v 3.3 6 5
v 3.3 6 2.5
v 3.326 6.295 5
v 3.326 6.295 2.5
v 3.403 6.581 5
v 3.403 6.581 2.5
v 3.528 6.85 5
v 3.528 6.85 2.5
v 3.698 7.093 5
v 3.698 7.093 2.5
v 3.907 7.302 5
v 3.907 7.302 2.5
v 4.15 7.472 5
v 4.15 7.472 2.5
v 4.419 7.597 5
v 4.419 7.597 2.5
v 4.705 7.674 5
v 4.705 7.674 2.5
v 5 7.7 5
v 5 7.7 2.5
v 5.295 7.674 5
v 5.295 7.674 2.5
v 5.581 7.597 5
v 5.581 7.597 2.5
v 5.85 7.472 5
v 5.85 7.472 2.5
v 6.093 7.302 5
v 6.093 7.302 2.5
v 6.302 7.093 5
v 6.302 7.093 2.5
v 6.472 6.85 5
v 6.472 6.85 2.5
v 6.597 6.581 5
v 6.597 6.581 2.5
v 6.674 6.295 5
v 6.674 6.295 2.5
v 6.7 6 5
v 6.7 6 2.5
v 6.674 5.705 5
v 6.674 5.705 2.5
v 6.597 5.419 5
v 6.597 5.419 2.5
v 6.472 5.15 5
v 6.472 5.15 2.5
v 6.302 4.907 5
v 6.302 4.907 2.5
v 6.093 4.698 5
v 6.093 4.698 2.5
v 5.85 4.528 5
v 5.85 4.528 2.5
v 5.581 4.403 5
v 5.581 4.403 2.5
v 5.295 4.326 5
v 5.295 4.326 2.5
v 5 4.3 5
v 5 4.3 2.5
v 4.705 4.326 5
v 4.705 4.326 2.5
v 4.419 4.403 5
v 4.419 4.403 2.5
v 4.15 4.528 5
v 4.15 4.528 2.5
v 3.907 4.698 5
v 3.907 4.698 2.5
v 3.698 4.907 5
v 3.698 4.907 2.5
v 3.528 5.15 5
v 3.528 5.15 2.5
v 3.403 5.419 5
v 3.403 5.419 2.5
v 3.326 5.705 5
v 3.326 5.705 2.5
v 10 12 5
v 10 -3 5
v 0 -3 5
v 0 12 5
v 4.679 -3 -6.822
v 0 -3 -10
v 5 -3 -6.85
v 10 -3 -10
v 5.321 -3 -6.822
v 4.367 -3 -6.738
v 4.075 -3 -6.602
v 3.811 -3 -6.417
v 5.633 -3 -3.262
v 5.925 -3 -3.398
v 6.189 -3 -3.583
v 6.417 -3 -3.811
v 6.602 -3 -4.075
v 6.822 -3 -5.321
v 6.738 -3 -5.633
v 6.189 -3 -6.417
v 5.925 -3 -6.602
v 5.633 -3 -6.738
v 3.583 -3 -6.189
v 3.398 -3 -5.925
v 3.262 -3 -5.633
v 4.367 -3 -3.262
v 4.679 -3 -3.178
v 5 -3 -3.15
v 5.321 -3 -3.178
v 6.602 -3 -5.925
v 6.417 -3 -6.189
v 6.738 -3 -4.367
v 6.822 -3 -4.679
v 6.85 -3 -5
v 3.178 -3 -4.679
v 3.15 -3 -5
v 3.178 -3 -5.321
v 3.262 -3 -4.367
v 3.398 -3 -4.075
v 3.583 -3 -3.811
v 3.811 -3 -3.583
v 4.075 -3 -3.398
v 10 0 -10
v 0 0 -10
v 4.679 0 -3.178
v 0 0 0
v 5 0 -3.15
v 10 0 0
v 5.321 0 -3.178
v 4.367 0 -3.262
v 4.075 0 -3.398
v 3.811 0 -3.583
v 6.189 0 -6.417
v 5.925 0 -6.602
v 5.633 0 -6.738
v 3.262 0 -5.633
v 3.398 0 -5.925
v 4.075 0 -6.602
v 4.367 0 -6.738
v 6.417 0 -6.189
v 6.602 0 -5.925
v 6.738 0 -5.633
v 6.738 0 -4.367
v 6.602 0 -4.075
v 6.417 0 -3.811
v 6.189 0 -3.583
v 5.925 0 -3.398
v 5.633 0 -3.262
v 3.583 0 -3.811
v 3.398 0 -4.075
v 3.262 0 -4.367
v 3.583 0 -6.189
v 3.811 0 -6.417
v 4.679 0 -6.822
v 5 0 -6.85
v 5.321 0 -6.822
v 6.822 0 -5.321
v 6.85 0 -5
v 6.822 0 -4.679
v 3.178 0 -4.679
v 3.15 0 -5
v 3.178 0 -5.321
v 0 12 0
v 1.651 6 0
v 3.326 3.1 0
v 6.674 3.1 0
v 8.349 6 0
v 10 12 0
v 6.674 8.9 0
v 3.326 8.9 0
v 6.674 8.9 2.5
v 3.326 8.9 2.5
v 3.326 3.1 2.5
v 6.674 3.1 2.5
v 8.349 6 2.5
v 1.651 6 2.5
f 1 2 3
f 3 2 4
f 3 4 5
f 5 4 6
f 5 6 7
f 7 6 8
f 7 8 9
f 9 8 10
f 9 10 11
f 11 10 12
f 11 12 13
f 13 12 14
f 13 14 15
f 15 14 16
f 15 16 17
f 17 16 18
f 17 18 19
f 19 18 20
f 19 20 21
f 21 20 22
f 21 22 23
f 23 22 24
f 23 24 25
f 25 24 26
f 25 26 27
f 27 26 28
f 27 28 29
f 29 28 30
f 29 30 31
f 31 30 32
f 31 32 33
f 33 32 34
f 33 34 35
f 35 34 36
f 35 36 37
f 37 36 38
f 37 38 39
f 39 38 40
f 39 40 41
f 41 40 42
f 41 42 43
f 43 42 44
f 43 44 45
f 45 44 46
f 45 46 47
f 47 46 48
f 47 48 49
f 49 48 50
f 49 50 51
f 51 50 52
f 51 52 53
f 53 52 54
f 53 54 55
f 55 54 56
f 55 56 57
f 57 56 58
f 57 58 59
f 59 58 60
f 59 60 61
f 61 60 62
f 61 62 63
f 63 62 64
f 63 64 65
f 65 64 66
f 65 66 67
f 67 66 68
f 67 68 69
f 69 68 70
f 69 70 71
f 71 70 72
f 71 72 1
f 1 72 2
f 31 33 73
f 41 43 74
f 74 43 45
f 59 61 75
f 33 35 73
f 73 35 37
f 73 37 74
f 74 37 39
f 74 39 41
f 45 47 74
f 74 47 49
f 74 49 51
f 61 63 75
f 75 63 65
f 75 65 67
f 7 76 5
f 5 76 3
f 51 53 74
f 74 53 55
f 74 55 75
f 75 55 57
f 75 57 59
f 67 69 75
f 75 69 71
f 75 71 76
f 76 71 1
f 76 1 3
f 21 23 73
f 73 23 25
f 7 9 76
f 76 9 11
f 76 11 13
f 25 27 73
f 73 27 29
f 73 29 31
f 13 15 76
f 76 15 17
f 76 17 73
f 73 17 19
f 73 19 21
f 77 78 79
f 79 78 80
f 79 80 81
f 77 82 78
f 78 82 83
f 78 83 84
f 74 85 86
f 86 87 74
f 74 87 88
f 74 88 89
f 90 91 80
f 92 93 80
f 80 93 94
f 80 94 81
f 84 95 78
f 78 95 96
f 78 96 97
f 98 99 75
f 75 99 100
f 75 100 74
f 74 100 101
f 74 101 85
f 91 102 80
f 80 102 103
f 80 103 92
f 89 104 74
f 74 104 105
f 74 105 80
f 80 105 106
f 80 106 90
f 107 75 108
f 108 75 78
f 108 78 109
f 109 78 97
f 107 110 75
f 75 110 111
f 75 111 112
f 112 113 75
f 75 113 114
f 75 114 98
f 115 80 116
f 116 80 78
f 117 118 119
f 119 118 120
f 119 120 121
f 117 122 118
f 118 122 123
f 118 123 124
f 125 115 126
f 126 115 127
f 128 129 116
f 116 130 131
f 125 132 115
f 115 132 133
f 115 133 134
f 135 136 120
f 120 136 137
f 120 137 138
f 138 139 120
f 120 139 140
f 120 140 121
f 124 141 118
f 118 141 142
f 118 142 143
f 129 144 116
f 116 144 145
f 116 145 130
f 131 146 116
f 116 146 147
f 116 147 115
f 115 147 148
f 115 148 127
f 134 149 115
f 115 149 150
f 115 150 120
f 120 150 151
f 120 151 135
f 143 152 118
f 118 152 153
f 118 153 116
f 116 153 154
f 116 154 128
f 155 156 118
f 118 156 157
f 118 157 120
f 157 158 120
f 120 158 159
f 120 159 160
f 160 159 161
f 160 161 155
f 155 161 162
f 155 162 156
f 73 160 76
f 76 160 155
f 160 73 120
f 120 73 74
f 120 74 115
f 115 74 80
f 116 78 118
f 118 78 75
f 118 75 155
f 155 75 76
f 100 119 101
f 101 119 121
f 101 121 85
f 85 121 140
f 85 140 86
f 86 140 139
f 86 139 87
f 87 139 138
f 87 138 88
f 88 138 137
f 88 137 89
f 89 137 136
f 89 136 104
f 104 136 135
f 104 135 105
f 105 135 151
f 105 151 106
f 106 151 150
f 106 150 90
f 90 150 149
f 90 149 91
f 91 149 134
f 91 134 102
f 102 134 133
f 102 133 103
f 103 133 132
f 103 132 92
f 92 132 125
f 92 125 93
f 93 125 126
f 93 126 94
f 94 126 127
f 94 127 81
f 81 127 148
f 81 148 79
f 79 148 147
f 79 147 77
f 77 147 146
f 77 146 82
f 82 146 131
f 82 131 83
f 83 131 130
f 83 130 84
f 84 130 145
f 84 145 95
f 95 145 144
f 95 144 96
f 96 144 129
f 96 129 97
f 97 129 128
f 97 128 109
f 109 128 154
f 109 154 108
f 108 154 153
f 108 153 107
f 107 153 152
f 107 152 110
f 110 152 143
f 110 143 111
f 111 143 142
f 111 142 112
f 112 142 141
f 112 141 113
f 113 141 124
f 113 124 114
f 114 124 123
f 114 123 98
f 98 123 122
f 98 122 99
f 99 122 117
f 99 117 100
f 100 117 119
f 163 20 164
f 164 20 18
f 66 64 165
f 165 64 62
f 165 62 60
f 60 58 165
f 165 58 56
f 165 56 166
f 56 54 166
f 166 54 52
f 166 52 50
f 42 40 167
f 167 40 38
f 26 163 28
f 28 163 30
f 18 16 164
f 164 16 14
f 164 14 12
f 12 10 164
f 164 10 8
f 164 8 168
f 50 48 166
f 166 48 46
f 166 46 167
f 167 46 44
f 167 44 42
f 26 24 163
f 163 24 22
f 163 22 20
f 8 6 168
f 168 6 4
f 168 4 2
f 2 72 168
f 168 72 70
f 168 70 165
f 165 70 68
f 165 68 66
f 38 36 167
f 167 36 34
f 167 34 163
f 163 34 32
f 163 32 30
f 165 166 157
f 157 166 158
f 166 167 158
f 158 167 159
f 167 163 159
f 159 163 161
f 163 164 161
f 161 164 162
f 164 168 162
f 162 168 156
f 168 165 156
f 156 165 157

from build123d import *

# Parameters (mm, degrees)
BOSS_EXTRUDE1_DEPTH = 10
SKETCH2_R           = 1.85
CUT_EXTRUDE1_DEPTH  = 19.547236991
SKETCH4_R           = 1.7
CUT_EXTRUDE2_DEPTH  = 19.547236991
CUT_EXTRUDE3_DEPTH  = 2.5


with BuildPart() as part:
    # Sketch1 → Boss-Extrude1 (new body)
    with BuildSketch(Plane(origin=(0, 0, 0), x_dir=(0, 0, -1), z_dir=(1, 0, 0))):
        Polygon((-5, 12), (0, 12), (0, 0), (10, 0), (10, -3), (-5, -3), align=None)
    extrude(amount=BOSS_EXTRUDE1_DEPTH)

    # Sketch2 → Cut-Extrude1 (cut, through all)
    with BuildSketch(Plane(origin=(0, 0, 0), x_dir=(1, 0, 0), z_dir=(0, 1, 0))):
        with Locations(Location((5, 5, 0), (0, 0, 270))):
            Circle(SKETCH2_R)
    extrude(amount=-CUT_EXTRUDE1_DEPTH, mode=Mode.SUBTRACT)

    # Sketch4 → Cut-Extrude2 (cut, through all)
    with BuildSketch(Plane(origin=(0, 0, 0), x_dir=(-1, 0, 0), z_dir=(0, 0, -1))):
        with Locations((-5, 6)):
            Circle(SKETCH4_R)
    extrude(amount=-CUT_EXTRUDE2_DEPTH, mode=Mode.SUBTRACT)

    # Sketch5 → Cut-Extrude3 (cut)
    with BuildSketch(Plane(origin=(0, 0, 0), x_dir=(-1, 0, 0), z_dir=(0, 0, -1))):
        Polygon((-3.325684219, 3.1), (-1.651368439, 6), (-3.325684219, 8.9), (-6.674315781, 8.9), (-8.348631561, 6), (-6.674315781, 3.1), align=None)
    extrude(amount=-CUT_EXTRUDE3_DEPTH, mode=Mode.SUBTRACT)


solid = part.part
